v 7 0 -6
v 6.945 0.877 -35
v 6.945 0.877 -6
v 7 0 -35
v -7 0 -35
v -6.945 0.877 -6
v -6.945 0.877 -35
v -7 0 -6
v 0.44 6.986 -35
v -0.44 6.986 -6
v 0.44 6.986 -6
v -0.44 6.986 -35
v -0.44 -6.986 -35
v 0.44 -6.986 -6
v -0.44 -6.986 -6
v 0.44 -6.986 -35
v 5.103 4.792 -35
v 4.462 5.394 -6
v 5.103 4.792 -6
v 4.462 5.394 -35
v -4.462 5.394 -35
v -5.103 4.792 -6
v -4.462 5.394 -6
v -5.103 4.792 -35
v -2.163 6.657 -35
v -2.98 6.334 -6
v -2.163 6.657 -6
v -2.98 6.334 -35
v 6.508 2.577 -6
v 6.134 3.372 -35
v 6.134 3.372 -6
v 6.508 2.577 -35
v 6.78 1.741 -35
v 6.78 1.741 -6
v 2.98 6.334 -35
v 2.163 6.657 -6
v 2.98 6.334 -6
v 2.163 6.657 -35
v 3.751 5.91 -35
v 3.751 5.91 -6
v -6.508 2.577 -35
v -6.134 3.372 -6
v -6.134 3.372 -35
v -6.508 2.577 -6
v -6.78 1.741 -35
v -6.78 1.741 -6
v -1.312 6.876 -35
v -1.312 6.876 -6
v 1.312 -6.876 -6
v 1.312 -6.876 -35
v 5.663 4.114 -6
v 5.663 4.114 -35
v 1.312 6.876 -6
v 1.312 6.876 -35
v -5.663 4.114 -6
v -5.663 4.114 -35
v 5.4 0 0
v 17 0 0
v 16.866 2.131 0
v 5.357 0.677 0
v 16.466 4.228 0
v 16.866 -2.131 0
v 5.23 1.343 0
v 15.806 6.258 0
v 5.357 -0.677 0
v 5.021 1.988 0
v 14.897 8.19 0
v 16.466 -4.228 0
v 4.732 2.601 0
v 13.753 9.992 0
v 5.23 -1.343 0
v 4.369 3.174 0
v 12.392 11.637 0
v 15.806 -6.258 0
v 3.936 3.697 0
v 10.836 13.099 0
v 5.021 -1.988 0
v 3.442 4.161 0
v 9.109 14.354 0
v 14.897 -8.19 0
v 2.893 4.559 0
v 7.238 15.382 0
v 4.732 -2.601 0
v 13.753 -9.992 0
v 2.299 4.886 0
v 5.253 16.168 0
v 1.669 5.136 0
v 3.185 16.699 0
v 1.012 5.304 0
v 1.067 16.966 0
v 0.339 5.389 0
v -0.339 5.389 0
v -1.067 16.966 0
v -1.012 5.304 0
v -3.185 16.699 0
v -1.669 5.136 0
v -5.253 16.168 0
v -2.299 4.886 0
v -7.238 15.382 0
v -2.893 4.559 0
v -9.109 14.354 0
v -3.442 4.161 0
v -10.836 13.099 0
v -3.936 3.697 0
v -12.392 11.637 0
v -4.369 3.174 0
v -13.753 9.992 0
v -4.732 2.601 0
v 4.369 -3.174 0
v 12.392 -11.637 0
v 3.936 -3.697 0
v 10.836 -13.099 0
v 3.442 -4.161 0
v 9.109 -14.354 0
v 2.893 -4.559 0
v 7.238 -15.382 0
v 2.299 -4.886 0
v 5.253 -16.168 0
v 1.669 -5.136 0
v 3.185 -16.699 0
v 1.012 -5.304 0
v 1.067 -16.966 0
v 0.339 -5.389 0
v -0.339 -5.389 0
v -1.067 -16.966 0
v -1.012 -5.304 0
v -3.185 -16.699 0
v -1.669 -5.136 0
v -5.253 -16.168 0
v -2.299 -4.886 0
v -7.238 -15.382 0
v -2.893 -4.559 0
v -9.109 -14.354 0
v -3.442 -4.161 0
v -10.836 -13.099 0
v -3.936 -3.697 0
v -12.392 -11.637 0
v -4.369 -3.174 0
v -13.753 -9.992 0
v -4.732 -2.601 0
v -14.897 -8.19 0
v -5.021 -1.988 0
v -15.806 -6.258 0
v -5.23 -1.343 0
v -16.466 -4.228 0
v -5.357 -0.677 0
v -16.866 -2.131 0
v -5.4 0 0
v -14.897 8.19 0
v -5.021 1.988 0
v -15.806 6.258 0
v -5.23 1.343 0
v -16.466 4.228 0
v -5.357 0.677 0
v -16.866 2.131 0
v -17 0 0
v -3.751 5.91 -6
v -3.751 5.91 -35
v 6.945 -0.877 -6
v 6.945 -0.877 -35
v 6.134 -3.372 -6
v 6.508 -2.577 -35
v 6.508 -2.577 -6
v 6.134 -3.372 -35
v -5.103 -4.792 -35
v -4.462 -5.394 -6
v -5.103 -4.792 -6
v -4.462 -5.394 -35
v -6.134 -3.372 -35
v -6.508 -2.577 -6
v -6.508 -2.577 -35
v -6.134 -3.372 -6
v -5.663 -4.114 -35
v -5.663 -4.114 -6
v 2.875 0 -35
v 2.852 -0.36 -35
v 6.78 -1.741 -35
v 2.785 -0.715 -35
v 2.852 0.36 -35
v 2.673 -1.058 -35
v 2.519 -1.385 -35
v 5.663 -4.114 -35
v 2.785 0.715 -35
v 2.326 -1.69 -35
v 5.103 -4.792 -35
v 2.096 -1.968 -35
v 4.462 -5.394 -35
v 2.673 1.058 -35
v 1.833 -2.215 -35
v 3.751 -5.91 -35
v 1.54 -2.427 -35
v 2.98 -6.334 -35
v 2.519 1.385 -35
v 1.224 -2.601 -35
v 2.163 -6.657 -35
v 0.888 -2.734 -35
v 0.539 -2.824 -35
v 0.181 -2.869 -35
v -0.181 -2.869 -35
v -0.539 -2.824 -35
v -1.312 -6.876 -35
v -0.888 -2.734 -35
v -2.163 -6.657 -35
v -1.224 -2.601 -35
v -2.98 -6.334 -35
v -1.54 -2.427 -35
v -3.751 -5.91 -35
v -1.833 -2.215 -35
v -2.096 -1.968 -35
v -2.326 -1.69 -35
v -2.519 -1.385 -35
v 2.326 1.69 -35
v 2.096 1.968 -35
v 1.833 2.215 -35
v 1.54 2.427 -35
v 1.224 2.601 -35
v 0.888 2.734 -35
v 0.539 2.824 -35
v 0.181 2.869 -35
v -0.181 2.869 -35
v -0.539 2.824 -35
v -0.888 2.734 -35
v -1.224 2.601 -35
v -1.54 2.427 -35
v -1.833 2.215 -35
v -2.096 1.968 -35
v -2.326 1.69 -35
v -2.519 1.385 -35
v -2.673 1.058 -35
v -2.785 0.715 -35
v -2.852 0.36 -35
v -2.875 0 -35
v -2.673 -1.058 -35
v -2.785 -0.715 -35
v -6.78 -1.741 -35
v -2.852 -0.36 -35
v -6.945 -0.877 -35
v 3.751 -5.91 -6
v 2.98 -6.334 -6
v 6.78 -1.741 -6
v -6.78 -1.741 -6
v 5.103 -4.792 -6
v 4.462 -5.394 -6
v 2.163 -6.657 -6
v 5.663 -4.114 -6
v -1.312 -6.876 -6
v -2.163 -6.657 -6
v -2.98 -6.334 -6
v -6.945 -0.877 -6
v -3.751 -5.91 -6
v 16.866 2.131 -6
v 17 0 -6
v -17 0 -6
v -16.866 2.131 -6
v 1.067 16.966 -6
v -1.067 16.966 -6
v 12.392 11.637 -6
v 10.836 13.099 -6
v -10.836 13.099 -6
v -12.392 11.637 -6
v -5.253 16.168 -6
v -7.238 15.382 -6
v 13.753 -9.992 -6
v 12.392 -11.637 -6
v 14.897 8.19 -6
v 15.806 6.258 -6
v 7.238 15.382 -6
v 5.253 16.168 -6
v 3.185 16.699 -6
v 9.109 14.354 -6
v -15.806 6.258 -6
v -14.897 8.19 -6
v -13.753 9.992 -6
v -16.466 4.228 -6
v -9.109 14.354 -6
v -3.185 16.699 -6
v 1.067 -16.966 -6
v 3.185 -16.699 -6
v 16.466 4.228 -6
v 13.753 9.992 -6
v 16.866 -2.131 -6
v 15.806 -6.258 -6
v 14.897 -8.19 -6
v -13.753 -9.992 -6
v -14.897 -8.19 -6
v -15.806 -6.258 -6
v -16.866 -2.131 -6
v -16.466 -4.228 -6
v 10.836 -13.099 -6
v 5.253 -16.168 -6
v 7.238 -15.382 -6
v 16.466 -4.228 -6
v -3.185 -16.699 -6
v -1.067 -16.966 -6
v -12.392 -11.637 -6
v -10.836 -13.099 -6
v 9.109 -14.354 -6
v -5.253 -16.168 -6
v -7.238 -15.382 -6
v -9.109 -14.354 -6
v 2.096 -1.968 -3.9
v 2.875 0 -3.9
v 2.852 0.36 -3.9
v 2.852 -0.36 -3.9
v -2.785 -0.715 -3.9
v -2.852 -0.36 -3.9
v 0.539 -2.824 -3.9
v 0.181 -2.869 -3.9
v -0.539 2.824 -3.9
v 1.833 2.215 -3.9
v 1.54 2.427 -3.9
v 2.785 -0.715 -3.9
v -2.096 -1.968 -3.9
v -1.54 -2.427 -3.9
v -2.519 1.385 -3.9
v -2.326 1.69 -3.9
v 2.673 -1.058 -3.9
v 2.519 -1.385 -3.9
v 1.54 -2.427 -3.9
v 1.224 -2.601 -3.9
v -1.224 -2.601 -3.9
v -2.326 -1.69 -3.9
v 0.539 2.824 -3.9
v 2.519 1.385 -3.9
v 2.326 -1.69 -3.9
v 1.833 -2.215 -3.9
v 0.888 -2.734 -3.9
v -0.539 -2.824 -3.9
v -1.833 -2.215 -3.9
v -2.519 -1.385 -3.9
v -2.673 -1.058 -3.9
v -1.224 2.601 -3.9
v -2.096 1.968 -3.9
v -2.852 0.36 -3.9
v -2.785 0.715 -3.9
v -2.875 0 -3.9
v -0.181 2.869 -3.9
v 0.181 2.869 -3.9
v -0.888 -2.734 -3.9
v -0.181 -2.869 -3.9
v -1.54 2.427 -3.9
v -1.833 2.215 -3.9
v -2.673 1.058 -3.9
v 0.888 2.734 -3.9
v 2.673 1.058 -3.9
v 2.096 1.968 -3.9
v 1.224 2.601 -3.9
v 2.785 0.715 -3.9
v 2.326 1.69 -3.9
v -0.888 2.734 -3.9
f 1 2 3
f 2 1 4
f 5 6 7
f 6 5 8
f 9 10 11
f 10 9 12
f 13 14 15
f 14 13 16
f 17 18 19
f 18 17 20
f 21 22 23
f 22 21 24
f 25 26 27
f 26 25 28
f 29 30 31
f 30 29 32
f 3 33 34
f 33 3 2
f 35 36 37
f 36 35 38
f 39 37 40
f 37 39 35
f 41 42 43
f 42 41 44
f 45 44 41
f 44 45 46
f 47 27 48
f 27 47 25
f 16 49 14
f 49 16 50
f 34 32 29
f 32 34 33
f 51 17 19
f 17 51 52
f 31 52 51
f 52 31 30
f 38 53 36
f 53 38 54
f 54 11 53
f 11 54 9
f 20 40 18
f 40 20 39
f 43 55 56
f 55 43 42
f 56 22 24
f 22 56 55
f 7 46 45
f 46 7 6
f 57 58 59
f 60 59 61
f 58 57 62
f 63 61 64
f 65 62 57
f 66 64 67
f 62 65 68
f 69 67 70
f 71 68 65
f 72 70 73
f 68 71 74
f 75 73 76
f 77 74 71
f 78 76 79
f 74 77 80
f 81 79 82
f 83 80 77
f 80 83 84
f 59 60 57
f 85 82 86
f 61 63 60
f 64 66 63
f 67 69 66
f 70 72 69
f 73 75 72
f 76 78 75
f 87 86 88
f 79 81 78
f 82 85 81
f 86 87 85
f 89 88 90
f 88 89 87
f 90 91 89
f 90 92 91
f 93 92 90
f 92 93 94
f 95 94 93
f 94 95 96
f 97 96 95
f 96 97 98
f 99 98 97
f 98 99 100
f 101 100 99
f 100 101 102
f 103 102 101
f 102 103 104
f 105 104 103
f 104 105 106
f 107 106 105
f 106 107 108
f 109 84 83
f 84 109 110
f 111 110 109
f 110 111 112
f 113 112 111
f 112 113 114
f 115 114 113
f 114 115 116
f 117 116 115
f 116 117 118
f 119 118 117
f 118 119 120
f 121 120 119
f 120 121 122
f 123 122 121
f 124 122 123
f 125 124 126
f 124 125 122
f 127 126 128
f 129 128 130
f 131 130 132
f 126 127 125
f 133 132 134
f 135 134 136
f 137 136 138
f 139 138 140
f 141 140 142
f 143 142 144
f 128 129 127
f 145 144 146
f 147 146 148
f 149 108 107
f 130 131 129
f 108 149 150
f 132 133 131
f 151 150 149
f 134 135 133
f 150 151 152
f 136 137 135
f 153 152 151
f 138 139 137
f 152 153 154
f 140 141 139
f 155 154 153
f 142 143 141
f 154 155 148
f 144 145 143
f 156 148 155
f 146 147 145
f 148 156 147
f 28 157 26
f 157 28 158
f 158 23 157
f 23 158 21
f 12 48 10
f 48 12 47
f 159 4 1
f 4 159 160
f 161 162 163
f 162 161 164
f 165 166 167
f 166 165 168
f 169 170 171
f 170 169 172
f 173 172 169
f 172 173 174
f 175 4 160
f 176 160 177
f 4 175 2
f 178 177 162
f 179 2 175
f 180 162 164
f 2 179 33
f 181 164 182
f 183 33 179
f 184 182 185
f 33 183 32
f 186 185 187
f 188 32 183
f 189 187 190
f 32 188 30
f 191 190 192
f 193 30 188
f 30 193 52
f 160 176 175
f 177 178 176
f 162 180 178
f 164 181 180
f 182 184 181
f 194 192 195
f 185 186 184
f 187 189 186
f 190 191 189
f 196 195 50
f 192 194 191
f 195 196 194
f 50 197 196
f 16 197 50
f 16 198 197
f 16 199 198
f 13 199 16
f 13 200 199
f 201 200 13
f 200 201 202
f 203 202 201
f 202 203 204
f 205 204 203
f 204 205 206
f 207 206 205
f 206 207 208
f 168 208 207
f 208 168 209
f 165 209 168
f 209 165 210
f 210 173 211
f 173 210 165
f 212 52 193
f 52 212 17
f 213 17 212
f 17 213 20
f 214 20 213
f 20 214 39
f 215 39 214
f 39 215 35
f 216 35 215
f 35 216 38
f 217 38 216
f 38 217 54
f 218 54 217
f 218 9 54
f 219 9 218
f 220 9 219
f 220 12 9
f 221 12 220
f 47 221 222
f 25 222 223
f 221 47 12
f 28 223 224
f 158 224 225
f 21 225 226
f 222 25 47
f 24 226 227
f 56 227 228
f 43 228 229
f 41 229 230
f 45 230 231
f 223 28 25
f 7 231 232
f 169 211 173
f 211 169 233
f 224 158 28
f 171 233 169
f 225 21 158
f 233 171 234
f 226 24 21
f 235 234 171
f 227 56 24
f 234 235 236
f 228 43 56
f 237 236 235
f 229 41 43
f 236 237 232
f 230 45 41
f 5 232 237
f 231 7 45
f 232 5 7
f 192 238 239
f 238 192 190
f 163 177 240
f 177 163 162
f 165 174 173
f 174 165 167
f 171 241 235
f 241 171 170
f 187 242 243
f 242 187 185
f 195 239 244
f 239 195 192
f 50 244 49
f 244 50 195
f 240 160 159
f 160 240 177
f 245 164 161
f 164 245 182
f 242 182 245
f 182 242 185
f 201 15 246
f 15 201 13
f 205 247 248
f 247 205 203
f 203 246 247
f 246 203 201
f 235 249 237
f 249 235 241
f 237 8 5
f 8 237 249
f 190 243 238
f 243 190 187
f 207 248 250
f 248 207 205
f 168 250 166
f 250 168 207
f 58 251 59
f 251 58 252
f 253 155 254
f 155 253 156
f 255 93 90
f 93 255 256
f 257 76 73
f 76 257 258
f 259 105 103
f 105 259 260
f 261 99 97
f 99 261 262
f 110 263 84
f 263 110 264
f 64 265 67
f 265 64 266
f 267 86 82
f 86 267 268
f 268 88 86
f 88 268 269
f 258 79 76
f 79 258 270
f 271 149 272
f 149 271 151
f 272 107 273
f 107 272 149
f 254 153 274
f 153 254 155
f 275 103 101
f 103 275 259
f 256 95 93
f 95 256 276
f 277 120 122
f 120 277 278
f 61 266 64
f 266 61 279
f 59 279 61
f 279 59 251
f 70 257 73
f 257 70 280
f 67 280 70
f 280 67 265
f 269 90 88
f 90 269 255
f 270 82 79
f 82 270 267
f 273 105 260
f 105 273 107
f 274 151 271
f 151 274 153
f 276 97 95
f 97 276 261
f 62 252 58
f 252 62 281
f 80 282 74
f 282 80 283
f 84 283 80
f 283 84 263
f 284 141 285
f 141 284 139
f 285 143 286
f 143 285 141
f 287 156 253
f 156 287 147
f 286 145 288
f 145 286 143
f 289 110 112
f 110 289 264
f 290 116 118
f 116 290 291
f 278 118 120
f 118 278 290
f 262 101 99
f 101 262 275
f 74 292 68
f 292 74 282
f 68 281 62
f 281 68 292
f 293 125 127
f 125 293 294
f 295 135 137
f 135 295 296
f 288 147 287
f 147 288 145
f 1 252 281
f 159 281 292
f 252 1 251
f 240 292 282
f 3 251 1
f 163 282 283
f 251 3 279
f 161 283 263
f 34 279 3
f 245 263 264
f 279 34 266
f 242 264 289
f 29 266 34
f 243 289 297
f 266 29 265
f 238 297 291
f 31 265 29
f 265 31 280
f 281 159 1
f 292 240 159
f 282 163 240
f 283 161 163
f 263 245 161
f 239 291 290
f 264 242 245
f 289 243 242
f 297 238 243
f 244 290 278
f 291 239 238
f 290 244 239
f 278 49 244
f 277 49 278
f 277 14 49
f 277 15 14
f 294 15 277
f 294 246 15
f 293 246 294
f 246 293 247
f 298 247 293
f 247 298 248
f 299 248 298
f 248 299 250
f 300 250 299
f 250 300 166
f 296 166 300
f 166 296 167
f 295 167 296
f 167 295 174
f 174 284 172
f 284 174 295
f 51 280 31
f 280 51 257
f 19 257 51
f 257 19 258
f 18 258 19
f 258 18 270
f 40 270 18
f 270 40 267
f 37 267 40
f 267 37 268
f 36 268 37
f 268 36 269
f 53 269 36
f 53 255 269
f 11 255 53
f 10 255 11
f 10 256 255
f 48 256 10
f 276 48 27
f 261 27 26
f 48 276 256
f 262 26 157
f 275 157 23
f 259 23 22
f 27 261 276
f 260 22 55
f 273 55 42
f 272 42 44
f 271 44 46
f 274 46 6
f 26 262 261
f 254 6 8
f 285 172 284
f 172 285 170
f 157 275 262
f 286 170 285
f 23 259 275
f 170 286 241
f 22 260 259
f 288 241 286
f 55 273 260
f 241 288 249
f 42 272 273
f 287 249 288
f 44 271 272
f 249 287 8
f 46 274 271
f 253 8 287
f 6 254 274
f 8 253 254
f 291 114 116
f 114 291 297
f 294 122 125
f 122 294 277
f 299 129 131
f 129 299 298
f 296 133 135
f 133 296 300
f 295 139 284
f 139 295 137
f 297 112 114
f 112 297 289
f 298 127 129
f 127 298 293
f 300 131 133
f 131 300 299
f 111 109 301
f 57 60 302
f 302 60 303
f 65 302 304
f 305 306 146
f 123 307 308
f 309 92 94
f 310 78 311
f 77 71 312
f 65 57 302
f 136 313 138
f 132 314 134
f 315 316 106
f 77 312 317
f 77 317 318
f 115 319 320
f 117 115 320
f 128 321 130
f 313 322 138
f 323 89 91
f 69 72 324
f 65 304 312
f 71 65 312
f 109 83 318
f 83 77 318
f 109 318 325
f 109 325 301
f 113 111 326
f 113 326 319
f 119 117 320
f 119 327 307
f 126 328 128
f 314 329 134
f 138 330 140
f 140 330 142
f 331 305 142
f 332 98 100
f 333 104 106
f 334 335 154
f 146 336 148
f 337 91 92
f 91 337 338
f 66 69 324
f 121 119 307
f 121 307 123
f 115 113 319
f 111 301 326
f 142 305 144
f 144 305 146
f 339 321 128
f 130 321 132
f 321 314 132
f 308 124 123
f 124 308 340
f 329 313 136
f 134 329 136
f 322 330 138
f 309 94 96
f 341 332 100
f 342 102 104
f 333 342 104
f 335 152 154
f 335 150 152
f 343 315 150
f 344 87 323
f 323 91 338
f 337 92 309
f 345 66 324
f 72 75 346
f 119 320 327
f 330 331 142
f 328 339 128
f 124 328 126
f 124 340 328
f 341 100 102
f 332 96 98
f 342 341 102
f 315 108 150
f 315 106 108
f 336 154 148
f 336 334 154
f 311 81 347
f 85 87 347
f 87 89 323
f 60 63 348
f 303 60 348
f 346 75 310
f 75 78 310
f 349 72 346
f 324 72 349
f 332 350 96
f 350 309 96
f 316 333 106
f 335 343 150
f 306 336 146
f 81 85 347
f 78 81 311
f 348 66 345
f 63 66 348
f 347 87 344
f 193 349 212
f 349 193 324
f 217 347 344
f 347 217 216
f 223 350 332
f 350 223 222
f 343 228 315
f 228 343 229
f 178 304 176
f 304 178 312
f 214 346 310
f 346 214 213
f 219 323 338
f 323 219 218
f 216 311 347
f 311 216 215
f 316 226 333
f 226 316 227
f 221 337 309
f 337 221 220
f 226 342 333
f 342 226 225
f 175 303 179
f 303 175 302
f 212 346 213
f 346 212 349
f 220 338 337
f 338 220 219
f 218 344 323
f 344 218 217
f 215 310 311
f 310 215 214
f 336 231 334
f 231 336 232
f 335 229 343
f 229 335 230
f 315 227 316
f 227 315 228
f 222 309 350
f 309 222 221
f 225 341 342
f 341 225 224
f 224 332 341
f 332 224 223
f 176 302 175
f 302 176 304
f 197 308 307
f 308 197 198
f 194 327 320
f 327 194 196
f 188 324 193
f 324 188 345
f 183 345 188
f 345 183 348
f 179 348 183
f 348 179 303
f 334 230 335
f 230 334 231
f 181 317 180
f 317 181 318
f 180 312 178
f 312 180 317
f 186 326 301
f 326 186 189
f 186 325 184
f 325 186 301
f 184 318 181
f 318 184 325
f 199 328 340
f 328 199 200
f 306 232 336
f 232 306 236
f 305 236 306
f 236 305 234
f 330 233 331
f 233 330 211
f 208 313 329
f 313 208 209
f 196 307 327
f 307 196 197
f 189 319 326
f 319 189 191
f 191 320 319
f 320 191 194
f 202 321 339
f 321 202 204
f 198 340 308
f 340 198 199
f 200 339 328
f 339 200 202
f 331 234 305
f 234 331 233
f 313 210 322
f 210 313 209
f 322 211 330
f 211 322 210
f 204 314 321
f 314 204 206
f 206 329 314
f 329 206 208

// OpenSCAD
$fn = 50;


difference() {
	union() {
		translate(v = [0, 0, -35.0000000000]) {
			cylinder(h = 35, r = 7.0000000000);
		}
		translate(v = [0, 0, -6.0000000000]) {
			cylinder(h = 6, r = 17.0000000000);
		}
	}
	union() {
		translate(v = [0, 0, 0]) {
			rotate(a = [0, 0, 0]) {
				difference() {
					union() {
						#translate(v = [0, 0, -35.0000000000]) {
							cylinder(h = 35, r = 2.6000000000);
						}
						#translate(v = [0, 0, -3.9000000000]) {
							cylinder(h = 3.9000000000, r = 7.0000000000, r1 = 2.8750000000, r2 = 5.4000000000);
						}
						#translate(v = [0, 0, -35.0000000000]) {
							cylinder(h = 35, r = 2.8750000000);
						}
						#translate(v = [0, 0, -35.0000000000]) {
							cylinder(h = 35, r = 2.6000000000);
						}
					}
					union();
				}
			}
		}
	}
}
